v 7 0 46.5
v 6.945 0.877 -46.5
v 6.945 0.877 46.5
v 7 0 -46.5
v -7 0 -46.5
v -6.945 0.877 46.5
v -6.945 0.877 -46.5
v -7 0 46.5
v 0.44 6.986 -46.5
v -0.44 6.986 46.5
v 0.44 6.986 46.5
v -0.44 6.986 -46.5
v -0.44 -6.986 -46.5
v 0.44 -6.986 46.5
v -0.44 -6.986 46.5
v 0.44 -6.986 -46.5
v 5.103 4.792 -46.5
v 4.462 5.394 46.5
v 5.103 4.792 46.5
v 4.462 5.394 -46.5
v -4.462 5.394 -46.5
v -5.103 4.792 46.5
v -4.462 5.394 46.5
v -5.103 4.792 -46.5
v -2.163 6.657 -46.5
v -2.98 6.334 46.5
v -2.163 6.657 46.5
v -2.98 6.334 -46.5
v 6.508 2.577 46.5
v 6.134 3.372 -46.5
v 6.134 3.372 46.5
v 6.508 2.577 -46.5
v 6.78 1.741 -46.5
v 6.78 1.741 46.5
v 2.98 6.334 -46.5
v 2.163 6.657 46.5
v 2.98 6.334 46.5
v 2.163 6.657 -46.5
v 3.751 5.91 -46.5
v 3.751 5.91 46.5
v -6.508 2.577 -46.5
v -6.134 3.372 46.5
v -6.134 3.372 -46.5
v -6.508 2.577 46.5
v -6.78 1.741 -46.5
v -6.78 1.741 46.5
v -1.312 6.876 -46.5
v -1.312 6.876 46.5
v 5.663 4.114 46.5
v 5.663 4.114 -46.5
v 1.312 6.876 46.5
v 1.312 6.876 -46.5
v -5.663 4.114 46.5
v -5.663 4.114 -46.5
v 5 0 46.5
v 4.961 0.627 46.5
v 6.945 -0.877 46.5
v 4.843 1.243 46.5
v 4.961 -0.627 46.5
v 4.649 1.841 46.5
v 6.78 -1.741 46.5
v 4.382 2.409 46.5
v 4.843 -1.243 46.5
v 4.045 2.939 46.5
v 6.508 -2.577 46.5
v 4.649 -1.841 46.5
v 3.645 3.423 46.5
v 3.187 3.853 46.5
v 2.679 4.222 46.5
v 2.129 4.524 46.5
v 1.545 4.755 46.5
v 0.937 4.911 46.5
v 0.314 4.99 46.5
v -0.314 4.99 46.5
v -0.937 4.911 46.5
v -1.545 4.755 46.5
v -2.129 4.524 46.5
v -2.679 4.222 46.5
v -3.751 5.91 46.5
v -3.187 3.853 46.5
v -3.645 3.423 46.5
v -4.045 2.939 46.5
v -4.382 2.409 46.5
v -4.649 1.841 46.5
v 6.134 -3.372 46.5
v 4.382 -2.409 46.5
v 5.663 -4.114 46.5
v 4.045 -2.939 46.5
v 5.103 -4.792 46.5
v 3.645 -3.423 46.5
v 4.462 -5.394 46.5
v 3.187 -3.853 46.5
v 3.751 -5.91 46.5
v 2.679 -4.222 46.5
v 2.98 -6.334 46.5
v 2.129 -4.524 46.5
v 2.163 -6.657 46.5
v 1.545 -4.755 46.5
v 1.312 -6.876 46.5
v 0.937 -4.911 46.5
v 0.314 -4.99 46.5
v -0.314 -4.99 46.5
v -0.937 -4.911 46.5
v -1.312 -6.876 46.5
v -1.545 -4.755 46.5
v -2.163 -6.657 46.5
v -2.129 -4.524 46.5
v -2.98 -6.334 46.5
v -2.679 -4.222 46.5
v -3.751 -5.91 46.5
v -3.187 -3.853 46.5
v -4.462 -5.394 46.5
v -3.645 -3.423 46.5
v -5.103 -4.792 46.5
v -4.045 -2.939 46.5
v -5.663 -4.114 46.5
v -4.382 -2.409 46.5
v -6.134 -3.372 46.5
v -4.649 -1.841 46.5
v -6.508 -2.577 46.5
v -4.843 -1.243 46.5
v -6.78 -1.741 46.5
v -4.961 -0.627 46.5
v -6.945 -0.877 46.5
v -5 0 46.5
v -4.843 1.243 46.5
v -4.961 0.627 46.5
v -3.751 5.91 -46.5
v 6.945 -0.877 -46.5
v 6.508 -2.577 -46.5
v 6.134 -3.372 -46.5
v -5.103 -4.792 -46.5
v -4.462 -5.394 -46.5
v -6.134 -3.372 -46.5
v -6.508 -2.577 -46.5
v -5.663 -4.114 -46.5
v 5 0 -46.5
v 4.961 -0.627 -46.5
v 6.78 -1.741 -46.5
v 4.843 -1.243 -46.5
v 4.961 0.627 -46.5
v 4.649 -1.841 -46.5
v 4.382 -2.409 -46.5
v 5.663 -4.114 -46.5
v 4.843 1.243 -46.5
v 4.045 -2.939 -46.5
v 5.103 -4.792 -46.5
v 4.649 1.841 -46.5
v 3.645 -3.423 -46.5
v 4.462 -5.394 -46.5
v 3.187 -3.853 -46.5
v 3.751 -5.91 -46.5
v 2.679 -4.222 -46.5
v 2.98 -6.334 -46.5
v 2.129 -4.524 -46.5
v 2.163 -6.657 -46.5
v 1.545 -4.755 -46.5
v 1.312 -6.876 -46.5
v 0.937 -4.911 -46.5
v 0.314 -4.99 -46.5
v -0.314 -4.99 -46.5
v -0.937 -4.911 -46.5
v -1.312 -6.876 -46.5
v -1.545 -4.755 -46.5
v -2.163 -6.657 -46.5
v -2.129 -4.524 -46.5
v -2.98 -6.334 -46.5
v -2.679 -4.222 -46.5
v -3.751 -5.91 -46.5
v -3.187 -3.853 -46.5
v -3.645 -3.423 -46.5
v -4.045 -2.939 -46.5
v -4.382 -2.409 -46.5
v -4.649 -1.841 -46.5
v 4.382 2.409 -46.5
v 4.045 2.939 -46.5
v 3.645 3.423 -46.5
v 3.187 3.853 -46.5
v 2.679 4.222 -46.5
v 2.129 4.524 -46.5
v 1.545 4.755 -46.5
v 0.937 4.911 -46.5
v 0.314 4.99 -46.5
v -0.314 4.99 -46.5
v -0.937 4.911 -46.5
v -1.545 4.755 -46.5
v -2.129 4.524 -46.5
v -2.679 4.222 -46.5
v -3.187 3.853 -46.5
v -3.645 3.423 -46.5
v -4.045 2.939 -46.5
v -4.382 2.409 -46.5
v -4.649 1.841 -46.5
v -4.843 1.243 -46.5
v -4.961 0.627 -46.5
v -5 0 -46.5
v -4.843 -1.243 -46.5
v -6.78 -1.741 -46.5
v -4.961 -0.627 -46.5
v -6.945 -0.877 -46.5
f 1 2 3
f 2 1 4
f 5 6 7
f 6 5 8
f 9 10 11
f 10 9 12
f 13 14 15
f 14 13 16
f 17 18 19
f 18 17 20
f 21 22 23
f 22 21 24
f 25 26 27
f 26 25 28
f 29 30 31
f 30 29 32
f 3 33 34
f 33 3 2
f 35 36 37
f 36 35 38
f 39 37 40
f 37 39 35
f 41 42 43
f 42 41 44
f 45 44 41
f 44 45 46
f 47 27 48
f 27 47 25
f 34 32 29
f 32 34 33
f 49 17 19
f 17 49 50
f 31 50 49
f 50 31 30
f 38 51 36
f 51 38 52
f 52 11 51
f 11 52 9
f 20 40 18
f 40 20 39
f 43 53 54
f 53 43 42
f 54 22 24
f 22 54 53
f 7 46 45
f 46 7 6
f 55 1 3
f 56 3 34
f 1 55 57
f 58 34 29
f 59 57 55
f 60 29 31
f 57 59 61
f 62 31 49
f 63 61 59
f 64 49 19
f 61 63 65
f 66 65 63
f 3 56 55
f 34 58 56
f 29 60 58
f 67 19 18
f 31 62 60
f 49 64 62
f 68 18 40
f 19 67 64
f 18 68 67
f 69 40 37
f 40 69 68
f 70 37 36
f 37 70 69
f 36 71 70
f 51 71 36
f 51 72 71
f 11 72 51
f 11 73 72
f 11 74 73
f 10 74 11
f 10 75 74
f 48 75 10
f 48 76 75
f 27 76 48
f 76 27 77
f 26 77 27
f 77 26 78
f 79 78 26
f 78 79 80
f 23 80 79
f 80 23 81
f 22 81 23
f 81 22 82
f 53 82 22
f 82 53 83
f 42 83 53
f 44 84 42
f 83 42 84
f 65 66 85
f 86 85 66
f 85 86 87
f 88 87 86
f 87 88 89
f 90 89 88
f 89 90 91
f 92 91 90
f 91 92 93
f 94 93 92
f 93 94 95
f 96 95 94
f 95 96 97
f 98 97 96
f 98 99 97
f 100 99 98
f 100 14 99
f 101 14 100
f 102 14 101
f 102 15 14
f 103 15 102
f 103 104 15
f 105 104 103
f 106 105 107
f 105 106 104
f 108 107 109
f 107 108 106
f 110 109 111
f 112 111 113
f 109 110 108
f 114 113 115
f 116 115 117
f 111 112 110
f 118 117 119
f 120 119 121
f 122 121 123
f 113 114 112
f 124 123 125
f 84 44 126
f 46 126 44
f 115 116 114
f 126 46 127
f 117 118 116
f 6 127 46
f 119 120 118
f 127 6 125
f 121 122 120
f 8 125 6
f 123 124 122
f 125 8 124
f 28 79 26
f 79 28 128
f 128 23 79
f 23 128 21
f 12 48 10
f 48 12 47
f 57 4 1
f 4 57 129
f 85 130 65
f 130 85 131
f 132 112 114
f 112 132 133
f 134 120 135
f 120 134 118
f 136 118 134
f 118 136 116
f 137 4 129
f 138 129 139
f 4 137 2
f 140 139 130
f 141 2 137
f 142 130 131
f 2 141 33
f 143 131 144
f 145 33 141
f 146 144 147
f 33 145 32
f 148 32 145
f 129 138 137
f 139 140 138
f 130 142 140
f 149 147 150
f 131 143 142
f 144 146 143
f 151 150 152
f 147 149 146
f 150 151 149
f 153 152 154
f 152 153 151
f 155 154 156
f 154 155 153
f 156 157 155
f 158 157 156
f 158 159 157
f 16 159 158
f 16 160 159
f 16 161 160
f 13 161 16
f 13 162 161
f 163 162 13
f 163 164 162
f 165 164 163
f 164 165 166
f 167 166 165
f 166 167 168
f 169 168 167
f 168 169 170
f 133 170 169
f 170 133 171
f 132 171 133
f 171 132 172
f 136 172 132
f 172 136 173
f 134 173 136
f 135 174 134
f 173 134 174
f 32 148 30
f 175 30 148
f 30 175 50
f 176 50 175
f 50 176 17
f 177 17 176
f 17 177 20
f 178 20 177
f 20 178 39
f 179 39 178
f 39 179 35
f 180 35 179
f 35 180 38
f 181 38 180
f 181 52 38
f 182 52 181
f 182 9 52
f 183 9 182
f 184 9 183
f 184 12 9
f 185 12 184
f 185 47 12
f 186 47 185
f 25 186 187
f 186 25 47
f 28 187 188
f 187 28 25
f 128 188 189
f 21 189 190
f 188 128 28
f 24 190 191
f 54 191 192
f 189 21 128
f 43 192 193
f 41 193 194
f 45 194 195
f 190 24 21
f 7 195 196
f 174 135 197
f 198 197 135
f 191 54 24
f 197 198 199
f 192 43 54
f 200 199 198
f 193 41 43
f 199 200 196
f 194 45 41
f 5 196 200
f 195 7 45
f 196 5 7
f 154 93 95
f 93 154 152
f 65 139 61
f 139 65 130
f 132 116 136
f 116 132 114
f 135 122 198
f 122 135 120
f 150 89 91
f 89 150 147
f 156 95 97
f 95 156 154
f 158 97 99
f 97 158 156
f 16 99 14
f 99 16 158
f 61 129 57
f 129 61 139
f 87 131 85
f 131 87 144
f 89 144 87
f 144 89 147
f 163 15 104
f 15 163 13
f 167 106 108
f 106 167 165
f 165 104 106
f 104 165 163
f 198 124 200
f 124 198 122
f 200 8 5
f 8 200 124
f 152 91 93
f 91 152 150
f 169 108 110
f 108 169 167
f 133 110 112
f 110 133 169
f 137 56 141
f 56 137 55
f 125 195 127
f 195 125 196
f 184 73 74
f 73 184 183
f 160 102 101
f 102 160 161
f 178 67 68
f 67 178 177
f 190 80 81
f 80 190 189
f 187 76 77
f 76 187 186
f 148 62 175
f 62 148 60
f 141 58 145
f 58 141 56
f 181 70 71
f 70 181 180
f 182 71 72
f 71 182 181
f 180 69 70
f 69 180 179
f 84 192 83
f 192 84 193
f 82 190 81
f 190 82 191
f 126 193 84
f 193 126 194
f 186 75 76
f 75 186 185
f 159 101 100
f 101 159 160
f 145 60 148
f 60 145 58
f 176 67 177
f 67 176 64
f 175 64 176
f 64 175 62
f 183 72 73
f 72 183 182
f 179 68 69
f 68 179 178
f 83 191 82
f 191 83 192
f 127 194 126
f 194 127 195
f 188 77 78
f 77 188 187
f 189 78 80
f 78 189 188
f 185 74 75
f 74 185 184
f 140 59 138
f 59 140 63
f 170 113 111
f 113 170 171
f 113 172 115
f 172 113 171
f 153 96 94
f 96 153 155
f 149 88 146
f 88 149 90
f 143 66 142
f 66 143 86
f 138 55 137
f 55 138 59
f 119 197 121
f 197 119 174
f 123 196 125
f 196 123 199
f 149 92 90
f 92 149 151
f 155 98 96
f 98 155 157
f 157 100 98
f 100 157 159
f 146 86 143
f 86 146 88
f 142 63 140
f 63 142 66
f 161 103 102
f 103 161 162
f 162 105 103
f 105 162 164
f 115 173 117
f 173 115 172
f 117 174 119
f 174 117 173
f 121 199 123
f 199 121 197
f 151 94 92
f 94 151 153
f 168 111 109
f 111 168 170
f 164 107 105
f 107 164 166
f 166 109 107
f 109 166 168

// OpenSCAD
$fn = 50;


difference() {
	union() {
		translate(v = [0, 0, -46.5000000000]) {
			cylinder(h = 93, r = 7.0000000000);
		}
	}
	union() {
		translate(v = [0, 0, -100.0000000000]) {
			cylinder(h = 200, r = 5);
		}
	}
}
